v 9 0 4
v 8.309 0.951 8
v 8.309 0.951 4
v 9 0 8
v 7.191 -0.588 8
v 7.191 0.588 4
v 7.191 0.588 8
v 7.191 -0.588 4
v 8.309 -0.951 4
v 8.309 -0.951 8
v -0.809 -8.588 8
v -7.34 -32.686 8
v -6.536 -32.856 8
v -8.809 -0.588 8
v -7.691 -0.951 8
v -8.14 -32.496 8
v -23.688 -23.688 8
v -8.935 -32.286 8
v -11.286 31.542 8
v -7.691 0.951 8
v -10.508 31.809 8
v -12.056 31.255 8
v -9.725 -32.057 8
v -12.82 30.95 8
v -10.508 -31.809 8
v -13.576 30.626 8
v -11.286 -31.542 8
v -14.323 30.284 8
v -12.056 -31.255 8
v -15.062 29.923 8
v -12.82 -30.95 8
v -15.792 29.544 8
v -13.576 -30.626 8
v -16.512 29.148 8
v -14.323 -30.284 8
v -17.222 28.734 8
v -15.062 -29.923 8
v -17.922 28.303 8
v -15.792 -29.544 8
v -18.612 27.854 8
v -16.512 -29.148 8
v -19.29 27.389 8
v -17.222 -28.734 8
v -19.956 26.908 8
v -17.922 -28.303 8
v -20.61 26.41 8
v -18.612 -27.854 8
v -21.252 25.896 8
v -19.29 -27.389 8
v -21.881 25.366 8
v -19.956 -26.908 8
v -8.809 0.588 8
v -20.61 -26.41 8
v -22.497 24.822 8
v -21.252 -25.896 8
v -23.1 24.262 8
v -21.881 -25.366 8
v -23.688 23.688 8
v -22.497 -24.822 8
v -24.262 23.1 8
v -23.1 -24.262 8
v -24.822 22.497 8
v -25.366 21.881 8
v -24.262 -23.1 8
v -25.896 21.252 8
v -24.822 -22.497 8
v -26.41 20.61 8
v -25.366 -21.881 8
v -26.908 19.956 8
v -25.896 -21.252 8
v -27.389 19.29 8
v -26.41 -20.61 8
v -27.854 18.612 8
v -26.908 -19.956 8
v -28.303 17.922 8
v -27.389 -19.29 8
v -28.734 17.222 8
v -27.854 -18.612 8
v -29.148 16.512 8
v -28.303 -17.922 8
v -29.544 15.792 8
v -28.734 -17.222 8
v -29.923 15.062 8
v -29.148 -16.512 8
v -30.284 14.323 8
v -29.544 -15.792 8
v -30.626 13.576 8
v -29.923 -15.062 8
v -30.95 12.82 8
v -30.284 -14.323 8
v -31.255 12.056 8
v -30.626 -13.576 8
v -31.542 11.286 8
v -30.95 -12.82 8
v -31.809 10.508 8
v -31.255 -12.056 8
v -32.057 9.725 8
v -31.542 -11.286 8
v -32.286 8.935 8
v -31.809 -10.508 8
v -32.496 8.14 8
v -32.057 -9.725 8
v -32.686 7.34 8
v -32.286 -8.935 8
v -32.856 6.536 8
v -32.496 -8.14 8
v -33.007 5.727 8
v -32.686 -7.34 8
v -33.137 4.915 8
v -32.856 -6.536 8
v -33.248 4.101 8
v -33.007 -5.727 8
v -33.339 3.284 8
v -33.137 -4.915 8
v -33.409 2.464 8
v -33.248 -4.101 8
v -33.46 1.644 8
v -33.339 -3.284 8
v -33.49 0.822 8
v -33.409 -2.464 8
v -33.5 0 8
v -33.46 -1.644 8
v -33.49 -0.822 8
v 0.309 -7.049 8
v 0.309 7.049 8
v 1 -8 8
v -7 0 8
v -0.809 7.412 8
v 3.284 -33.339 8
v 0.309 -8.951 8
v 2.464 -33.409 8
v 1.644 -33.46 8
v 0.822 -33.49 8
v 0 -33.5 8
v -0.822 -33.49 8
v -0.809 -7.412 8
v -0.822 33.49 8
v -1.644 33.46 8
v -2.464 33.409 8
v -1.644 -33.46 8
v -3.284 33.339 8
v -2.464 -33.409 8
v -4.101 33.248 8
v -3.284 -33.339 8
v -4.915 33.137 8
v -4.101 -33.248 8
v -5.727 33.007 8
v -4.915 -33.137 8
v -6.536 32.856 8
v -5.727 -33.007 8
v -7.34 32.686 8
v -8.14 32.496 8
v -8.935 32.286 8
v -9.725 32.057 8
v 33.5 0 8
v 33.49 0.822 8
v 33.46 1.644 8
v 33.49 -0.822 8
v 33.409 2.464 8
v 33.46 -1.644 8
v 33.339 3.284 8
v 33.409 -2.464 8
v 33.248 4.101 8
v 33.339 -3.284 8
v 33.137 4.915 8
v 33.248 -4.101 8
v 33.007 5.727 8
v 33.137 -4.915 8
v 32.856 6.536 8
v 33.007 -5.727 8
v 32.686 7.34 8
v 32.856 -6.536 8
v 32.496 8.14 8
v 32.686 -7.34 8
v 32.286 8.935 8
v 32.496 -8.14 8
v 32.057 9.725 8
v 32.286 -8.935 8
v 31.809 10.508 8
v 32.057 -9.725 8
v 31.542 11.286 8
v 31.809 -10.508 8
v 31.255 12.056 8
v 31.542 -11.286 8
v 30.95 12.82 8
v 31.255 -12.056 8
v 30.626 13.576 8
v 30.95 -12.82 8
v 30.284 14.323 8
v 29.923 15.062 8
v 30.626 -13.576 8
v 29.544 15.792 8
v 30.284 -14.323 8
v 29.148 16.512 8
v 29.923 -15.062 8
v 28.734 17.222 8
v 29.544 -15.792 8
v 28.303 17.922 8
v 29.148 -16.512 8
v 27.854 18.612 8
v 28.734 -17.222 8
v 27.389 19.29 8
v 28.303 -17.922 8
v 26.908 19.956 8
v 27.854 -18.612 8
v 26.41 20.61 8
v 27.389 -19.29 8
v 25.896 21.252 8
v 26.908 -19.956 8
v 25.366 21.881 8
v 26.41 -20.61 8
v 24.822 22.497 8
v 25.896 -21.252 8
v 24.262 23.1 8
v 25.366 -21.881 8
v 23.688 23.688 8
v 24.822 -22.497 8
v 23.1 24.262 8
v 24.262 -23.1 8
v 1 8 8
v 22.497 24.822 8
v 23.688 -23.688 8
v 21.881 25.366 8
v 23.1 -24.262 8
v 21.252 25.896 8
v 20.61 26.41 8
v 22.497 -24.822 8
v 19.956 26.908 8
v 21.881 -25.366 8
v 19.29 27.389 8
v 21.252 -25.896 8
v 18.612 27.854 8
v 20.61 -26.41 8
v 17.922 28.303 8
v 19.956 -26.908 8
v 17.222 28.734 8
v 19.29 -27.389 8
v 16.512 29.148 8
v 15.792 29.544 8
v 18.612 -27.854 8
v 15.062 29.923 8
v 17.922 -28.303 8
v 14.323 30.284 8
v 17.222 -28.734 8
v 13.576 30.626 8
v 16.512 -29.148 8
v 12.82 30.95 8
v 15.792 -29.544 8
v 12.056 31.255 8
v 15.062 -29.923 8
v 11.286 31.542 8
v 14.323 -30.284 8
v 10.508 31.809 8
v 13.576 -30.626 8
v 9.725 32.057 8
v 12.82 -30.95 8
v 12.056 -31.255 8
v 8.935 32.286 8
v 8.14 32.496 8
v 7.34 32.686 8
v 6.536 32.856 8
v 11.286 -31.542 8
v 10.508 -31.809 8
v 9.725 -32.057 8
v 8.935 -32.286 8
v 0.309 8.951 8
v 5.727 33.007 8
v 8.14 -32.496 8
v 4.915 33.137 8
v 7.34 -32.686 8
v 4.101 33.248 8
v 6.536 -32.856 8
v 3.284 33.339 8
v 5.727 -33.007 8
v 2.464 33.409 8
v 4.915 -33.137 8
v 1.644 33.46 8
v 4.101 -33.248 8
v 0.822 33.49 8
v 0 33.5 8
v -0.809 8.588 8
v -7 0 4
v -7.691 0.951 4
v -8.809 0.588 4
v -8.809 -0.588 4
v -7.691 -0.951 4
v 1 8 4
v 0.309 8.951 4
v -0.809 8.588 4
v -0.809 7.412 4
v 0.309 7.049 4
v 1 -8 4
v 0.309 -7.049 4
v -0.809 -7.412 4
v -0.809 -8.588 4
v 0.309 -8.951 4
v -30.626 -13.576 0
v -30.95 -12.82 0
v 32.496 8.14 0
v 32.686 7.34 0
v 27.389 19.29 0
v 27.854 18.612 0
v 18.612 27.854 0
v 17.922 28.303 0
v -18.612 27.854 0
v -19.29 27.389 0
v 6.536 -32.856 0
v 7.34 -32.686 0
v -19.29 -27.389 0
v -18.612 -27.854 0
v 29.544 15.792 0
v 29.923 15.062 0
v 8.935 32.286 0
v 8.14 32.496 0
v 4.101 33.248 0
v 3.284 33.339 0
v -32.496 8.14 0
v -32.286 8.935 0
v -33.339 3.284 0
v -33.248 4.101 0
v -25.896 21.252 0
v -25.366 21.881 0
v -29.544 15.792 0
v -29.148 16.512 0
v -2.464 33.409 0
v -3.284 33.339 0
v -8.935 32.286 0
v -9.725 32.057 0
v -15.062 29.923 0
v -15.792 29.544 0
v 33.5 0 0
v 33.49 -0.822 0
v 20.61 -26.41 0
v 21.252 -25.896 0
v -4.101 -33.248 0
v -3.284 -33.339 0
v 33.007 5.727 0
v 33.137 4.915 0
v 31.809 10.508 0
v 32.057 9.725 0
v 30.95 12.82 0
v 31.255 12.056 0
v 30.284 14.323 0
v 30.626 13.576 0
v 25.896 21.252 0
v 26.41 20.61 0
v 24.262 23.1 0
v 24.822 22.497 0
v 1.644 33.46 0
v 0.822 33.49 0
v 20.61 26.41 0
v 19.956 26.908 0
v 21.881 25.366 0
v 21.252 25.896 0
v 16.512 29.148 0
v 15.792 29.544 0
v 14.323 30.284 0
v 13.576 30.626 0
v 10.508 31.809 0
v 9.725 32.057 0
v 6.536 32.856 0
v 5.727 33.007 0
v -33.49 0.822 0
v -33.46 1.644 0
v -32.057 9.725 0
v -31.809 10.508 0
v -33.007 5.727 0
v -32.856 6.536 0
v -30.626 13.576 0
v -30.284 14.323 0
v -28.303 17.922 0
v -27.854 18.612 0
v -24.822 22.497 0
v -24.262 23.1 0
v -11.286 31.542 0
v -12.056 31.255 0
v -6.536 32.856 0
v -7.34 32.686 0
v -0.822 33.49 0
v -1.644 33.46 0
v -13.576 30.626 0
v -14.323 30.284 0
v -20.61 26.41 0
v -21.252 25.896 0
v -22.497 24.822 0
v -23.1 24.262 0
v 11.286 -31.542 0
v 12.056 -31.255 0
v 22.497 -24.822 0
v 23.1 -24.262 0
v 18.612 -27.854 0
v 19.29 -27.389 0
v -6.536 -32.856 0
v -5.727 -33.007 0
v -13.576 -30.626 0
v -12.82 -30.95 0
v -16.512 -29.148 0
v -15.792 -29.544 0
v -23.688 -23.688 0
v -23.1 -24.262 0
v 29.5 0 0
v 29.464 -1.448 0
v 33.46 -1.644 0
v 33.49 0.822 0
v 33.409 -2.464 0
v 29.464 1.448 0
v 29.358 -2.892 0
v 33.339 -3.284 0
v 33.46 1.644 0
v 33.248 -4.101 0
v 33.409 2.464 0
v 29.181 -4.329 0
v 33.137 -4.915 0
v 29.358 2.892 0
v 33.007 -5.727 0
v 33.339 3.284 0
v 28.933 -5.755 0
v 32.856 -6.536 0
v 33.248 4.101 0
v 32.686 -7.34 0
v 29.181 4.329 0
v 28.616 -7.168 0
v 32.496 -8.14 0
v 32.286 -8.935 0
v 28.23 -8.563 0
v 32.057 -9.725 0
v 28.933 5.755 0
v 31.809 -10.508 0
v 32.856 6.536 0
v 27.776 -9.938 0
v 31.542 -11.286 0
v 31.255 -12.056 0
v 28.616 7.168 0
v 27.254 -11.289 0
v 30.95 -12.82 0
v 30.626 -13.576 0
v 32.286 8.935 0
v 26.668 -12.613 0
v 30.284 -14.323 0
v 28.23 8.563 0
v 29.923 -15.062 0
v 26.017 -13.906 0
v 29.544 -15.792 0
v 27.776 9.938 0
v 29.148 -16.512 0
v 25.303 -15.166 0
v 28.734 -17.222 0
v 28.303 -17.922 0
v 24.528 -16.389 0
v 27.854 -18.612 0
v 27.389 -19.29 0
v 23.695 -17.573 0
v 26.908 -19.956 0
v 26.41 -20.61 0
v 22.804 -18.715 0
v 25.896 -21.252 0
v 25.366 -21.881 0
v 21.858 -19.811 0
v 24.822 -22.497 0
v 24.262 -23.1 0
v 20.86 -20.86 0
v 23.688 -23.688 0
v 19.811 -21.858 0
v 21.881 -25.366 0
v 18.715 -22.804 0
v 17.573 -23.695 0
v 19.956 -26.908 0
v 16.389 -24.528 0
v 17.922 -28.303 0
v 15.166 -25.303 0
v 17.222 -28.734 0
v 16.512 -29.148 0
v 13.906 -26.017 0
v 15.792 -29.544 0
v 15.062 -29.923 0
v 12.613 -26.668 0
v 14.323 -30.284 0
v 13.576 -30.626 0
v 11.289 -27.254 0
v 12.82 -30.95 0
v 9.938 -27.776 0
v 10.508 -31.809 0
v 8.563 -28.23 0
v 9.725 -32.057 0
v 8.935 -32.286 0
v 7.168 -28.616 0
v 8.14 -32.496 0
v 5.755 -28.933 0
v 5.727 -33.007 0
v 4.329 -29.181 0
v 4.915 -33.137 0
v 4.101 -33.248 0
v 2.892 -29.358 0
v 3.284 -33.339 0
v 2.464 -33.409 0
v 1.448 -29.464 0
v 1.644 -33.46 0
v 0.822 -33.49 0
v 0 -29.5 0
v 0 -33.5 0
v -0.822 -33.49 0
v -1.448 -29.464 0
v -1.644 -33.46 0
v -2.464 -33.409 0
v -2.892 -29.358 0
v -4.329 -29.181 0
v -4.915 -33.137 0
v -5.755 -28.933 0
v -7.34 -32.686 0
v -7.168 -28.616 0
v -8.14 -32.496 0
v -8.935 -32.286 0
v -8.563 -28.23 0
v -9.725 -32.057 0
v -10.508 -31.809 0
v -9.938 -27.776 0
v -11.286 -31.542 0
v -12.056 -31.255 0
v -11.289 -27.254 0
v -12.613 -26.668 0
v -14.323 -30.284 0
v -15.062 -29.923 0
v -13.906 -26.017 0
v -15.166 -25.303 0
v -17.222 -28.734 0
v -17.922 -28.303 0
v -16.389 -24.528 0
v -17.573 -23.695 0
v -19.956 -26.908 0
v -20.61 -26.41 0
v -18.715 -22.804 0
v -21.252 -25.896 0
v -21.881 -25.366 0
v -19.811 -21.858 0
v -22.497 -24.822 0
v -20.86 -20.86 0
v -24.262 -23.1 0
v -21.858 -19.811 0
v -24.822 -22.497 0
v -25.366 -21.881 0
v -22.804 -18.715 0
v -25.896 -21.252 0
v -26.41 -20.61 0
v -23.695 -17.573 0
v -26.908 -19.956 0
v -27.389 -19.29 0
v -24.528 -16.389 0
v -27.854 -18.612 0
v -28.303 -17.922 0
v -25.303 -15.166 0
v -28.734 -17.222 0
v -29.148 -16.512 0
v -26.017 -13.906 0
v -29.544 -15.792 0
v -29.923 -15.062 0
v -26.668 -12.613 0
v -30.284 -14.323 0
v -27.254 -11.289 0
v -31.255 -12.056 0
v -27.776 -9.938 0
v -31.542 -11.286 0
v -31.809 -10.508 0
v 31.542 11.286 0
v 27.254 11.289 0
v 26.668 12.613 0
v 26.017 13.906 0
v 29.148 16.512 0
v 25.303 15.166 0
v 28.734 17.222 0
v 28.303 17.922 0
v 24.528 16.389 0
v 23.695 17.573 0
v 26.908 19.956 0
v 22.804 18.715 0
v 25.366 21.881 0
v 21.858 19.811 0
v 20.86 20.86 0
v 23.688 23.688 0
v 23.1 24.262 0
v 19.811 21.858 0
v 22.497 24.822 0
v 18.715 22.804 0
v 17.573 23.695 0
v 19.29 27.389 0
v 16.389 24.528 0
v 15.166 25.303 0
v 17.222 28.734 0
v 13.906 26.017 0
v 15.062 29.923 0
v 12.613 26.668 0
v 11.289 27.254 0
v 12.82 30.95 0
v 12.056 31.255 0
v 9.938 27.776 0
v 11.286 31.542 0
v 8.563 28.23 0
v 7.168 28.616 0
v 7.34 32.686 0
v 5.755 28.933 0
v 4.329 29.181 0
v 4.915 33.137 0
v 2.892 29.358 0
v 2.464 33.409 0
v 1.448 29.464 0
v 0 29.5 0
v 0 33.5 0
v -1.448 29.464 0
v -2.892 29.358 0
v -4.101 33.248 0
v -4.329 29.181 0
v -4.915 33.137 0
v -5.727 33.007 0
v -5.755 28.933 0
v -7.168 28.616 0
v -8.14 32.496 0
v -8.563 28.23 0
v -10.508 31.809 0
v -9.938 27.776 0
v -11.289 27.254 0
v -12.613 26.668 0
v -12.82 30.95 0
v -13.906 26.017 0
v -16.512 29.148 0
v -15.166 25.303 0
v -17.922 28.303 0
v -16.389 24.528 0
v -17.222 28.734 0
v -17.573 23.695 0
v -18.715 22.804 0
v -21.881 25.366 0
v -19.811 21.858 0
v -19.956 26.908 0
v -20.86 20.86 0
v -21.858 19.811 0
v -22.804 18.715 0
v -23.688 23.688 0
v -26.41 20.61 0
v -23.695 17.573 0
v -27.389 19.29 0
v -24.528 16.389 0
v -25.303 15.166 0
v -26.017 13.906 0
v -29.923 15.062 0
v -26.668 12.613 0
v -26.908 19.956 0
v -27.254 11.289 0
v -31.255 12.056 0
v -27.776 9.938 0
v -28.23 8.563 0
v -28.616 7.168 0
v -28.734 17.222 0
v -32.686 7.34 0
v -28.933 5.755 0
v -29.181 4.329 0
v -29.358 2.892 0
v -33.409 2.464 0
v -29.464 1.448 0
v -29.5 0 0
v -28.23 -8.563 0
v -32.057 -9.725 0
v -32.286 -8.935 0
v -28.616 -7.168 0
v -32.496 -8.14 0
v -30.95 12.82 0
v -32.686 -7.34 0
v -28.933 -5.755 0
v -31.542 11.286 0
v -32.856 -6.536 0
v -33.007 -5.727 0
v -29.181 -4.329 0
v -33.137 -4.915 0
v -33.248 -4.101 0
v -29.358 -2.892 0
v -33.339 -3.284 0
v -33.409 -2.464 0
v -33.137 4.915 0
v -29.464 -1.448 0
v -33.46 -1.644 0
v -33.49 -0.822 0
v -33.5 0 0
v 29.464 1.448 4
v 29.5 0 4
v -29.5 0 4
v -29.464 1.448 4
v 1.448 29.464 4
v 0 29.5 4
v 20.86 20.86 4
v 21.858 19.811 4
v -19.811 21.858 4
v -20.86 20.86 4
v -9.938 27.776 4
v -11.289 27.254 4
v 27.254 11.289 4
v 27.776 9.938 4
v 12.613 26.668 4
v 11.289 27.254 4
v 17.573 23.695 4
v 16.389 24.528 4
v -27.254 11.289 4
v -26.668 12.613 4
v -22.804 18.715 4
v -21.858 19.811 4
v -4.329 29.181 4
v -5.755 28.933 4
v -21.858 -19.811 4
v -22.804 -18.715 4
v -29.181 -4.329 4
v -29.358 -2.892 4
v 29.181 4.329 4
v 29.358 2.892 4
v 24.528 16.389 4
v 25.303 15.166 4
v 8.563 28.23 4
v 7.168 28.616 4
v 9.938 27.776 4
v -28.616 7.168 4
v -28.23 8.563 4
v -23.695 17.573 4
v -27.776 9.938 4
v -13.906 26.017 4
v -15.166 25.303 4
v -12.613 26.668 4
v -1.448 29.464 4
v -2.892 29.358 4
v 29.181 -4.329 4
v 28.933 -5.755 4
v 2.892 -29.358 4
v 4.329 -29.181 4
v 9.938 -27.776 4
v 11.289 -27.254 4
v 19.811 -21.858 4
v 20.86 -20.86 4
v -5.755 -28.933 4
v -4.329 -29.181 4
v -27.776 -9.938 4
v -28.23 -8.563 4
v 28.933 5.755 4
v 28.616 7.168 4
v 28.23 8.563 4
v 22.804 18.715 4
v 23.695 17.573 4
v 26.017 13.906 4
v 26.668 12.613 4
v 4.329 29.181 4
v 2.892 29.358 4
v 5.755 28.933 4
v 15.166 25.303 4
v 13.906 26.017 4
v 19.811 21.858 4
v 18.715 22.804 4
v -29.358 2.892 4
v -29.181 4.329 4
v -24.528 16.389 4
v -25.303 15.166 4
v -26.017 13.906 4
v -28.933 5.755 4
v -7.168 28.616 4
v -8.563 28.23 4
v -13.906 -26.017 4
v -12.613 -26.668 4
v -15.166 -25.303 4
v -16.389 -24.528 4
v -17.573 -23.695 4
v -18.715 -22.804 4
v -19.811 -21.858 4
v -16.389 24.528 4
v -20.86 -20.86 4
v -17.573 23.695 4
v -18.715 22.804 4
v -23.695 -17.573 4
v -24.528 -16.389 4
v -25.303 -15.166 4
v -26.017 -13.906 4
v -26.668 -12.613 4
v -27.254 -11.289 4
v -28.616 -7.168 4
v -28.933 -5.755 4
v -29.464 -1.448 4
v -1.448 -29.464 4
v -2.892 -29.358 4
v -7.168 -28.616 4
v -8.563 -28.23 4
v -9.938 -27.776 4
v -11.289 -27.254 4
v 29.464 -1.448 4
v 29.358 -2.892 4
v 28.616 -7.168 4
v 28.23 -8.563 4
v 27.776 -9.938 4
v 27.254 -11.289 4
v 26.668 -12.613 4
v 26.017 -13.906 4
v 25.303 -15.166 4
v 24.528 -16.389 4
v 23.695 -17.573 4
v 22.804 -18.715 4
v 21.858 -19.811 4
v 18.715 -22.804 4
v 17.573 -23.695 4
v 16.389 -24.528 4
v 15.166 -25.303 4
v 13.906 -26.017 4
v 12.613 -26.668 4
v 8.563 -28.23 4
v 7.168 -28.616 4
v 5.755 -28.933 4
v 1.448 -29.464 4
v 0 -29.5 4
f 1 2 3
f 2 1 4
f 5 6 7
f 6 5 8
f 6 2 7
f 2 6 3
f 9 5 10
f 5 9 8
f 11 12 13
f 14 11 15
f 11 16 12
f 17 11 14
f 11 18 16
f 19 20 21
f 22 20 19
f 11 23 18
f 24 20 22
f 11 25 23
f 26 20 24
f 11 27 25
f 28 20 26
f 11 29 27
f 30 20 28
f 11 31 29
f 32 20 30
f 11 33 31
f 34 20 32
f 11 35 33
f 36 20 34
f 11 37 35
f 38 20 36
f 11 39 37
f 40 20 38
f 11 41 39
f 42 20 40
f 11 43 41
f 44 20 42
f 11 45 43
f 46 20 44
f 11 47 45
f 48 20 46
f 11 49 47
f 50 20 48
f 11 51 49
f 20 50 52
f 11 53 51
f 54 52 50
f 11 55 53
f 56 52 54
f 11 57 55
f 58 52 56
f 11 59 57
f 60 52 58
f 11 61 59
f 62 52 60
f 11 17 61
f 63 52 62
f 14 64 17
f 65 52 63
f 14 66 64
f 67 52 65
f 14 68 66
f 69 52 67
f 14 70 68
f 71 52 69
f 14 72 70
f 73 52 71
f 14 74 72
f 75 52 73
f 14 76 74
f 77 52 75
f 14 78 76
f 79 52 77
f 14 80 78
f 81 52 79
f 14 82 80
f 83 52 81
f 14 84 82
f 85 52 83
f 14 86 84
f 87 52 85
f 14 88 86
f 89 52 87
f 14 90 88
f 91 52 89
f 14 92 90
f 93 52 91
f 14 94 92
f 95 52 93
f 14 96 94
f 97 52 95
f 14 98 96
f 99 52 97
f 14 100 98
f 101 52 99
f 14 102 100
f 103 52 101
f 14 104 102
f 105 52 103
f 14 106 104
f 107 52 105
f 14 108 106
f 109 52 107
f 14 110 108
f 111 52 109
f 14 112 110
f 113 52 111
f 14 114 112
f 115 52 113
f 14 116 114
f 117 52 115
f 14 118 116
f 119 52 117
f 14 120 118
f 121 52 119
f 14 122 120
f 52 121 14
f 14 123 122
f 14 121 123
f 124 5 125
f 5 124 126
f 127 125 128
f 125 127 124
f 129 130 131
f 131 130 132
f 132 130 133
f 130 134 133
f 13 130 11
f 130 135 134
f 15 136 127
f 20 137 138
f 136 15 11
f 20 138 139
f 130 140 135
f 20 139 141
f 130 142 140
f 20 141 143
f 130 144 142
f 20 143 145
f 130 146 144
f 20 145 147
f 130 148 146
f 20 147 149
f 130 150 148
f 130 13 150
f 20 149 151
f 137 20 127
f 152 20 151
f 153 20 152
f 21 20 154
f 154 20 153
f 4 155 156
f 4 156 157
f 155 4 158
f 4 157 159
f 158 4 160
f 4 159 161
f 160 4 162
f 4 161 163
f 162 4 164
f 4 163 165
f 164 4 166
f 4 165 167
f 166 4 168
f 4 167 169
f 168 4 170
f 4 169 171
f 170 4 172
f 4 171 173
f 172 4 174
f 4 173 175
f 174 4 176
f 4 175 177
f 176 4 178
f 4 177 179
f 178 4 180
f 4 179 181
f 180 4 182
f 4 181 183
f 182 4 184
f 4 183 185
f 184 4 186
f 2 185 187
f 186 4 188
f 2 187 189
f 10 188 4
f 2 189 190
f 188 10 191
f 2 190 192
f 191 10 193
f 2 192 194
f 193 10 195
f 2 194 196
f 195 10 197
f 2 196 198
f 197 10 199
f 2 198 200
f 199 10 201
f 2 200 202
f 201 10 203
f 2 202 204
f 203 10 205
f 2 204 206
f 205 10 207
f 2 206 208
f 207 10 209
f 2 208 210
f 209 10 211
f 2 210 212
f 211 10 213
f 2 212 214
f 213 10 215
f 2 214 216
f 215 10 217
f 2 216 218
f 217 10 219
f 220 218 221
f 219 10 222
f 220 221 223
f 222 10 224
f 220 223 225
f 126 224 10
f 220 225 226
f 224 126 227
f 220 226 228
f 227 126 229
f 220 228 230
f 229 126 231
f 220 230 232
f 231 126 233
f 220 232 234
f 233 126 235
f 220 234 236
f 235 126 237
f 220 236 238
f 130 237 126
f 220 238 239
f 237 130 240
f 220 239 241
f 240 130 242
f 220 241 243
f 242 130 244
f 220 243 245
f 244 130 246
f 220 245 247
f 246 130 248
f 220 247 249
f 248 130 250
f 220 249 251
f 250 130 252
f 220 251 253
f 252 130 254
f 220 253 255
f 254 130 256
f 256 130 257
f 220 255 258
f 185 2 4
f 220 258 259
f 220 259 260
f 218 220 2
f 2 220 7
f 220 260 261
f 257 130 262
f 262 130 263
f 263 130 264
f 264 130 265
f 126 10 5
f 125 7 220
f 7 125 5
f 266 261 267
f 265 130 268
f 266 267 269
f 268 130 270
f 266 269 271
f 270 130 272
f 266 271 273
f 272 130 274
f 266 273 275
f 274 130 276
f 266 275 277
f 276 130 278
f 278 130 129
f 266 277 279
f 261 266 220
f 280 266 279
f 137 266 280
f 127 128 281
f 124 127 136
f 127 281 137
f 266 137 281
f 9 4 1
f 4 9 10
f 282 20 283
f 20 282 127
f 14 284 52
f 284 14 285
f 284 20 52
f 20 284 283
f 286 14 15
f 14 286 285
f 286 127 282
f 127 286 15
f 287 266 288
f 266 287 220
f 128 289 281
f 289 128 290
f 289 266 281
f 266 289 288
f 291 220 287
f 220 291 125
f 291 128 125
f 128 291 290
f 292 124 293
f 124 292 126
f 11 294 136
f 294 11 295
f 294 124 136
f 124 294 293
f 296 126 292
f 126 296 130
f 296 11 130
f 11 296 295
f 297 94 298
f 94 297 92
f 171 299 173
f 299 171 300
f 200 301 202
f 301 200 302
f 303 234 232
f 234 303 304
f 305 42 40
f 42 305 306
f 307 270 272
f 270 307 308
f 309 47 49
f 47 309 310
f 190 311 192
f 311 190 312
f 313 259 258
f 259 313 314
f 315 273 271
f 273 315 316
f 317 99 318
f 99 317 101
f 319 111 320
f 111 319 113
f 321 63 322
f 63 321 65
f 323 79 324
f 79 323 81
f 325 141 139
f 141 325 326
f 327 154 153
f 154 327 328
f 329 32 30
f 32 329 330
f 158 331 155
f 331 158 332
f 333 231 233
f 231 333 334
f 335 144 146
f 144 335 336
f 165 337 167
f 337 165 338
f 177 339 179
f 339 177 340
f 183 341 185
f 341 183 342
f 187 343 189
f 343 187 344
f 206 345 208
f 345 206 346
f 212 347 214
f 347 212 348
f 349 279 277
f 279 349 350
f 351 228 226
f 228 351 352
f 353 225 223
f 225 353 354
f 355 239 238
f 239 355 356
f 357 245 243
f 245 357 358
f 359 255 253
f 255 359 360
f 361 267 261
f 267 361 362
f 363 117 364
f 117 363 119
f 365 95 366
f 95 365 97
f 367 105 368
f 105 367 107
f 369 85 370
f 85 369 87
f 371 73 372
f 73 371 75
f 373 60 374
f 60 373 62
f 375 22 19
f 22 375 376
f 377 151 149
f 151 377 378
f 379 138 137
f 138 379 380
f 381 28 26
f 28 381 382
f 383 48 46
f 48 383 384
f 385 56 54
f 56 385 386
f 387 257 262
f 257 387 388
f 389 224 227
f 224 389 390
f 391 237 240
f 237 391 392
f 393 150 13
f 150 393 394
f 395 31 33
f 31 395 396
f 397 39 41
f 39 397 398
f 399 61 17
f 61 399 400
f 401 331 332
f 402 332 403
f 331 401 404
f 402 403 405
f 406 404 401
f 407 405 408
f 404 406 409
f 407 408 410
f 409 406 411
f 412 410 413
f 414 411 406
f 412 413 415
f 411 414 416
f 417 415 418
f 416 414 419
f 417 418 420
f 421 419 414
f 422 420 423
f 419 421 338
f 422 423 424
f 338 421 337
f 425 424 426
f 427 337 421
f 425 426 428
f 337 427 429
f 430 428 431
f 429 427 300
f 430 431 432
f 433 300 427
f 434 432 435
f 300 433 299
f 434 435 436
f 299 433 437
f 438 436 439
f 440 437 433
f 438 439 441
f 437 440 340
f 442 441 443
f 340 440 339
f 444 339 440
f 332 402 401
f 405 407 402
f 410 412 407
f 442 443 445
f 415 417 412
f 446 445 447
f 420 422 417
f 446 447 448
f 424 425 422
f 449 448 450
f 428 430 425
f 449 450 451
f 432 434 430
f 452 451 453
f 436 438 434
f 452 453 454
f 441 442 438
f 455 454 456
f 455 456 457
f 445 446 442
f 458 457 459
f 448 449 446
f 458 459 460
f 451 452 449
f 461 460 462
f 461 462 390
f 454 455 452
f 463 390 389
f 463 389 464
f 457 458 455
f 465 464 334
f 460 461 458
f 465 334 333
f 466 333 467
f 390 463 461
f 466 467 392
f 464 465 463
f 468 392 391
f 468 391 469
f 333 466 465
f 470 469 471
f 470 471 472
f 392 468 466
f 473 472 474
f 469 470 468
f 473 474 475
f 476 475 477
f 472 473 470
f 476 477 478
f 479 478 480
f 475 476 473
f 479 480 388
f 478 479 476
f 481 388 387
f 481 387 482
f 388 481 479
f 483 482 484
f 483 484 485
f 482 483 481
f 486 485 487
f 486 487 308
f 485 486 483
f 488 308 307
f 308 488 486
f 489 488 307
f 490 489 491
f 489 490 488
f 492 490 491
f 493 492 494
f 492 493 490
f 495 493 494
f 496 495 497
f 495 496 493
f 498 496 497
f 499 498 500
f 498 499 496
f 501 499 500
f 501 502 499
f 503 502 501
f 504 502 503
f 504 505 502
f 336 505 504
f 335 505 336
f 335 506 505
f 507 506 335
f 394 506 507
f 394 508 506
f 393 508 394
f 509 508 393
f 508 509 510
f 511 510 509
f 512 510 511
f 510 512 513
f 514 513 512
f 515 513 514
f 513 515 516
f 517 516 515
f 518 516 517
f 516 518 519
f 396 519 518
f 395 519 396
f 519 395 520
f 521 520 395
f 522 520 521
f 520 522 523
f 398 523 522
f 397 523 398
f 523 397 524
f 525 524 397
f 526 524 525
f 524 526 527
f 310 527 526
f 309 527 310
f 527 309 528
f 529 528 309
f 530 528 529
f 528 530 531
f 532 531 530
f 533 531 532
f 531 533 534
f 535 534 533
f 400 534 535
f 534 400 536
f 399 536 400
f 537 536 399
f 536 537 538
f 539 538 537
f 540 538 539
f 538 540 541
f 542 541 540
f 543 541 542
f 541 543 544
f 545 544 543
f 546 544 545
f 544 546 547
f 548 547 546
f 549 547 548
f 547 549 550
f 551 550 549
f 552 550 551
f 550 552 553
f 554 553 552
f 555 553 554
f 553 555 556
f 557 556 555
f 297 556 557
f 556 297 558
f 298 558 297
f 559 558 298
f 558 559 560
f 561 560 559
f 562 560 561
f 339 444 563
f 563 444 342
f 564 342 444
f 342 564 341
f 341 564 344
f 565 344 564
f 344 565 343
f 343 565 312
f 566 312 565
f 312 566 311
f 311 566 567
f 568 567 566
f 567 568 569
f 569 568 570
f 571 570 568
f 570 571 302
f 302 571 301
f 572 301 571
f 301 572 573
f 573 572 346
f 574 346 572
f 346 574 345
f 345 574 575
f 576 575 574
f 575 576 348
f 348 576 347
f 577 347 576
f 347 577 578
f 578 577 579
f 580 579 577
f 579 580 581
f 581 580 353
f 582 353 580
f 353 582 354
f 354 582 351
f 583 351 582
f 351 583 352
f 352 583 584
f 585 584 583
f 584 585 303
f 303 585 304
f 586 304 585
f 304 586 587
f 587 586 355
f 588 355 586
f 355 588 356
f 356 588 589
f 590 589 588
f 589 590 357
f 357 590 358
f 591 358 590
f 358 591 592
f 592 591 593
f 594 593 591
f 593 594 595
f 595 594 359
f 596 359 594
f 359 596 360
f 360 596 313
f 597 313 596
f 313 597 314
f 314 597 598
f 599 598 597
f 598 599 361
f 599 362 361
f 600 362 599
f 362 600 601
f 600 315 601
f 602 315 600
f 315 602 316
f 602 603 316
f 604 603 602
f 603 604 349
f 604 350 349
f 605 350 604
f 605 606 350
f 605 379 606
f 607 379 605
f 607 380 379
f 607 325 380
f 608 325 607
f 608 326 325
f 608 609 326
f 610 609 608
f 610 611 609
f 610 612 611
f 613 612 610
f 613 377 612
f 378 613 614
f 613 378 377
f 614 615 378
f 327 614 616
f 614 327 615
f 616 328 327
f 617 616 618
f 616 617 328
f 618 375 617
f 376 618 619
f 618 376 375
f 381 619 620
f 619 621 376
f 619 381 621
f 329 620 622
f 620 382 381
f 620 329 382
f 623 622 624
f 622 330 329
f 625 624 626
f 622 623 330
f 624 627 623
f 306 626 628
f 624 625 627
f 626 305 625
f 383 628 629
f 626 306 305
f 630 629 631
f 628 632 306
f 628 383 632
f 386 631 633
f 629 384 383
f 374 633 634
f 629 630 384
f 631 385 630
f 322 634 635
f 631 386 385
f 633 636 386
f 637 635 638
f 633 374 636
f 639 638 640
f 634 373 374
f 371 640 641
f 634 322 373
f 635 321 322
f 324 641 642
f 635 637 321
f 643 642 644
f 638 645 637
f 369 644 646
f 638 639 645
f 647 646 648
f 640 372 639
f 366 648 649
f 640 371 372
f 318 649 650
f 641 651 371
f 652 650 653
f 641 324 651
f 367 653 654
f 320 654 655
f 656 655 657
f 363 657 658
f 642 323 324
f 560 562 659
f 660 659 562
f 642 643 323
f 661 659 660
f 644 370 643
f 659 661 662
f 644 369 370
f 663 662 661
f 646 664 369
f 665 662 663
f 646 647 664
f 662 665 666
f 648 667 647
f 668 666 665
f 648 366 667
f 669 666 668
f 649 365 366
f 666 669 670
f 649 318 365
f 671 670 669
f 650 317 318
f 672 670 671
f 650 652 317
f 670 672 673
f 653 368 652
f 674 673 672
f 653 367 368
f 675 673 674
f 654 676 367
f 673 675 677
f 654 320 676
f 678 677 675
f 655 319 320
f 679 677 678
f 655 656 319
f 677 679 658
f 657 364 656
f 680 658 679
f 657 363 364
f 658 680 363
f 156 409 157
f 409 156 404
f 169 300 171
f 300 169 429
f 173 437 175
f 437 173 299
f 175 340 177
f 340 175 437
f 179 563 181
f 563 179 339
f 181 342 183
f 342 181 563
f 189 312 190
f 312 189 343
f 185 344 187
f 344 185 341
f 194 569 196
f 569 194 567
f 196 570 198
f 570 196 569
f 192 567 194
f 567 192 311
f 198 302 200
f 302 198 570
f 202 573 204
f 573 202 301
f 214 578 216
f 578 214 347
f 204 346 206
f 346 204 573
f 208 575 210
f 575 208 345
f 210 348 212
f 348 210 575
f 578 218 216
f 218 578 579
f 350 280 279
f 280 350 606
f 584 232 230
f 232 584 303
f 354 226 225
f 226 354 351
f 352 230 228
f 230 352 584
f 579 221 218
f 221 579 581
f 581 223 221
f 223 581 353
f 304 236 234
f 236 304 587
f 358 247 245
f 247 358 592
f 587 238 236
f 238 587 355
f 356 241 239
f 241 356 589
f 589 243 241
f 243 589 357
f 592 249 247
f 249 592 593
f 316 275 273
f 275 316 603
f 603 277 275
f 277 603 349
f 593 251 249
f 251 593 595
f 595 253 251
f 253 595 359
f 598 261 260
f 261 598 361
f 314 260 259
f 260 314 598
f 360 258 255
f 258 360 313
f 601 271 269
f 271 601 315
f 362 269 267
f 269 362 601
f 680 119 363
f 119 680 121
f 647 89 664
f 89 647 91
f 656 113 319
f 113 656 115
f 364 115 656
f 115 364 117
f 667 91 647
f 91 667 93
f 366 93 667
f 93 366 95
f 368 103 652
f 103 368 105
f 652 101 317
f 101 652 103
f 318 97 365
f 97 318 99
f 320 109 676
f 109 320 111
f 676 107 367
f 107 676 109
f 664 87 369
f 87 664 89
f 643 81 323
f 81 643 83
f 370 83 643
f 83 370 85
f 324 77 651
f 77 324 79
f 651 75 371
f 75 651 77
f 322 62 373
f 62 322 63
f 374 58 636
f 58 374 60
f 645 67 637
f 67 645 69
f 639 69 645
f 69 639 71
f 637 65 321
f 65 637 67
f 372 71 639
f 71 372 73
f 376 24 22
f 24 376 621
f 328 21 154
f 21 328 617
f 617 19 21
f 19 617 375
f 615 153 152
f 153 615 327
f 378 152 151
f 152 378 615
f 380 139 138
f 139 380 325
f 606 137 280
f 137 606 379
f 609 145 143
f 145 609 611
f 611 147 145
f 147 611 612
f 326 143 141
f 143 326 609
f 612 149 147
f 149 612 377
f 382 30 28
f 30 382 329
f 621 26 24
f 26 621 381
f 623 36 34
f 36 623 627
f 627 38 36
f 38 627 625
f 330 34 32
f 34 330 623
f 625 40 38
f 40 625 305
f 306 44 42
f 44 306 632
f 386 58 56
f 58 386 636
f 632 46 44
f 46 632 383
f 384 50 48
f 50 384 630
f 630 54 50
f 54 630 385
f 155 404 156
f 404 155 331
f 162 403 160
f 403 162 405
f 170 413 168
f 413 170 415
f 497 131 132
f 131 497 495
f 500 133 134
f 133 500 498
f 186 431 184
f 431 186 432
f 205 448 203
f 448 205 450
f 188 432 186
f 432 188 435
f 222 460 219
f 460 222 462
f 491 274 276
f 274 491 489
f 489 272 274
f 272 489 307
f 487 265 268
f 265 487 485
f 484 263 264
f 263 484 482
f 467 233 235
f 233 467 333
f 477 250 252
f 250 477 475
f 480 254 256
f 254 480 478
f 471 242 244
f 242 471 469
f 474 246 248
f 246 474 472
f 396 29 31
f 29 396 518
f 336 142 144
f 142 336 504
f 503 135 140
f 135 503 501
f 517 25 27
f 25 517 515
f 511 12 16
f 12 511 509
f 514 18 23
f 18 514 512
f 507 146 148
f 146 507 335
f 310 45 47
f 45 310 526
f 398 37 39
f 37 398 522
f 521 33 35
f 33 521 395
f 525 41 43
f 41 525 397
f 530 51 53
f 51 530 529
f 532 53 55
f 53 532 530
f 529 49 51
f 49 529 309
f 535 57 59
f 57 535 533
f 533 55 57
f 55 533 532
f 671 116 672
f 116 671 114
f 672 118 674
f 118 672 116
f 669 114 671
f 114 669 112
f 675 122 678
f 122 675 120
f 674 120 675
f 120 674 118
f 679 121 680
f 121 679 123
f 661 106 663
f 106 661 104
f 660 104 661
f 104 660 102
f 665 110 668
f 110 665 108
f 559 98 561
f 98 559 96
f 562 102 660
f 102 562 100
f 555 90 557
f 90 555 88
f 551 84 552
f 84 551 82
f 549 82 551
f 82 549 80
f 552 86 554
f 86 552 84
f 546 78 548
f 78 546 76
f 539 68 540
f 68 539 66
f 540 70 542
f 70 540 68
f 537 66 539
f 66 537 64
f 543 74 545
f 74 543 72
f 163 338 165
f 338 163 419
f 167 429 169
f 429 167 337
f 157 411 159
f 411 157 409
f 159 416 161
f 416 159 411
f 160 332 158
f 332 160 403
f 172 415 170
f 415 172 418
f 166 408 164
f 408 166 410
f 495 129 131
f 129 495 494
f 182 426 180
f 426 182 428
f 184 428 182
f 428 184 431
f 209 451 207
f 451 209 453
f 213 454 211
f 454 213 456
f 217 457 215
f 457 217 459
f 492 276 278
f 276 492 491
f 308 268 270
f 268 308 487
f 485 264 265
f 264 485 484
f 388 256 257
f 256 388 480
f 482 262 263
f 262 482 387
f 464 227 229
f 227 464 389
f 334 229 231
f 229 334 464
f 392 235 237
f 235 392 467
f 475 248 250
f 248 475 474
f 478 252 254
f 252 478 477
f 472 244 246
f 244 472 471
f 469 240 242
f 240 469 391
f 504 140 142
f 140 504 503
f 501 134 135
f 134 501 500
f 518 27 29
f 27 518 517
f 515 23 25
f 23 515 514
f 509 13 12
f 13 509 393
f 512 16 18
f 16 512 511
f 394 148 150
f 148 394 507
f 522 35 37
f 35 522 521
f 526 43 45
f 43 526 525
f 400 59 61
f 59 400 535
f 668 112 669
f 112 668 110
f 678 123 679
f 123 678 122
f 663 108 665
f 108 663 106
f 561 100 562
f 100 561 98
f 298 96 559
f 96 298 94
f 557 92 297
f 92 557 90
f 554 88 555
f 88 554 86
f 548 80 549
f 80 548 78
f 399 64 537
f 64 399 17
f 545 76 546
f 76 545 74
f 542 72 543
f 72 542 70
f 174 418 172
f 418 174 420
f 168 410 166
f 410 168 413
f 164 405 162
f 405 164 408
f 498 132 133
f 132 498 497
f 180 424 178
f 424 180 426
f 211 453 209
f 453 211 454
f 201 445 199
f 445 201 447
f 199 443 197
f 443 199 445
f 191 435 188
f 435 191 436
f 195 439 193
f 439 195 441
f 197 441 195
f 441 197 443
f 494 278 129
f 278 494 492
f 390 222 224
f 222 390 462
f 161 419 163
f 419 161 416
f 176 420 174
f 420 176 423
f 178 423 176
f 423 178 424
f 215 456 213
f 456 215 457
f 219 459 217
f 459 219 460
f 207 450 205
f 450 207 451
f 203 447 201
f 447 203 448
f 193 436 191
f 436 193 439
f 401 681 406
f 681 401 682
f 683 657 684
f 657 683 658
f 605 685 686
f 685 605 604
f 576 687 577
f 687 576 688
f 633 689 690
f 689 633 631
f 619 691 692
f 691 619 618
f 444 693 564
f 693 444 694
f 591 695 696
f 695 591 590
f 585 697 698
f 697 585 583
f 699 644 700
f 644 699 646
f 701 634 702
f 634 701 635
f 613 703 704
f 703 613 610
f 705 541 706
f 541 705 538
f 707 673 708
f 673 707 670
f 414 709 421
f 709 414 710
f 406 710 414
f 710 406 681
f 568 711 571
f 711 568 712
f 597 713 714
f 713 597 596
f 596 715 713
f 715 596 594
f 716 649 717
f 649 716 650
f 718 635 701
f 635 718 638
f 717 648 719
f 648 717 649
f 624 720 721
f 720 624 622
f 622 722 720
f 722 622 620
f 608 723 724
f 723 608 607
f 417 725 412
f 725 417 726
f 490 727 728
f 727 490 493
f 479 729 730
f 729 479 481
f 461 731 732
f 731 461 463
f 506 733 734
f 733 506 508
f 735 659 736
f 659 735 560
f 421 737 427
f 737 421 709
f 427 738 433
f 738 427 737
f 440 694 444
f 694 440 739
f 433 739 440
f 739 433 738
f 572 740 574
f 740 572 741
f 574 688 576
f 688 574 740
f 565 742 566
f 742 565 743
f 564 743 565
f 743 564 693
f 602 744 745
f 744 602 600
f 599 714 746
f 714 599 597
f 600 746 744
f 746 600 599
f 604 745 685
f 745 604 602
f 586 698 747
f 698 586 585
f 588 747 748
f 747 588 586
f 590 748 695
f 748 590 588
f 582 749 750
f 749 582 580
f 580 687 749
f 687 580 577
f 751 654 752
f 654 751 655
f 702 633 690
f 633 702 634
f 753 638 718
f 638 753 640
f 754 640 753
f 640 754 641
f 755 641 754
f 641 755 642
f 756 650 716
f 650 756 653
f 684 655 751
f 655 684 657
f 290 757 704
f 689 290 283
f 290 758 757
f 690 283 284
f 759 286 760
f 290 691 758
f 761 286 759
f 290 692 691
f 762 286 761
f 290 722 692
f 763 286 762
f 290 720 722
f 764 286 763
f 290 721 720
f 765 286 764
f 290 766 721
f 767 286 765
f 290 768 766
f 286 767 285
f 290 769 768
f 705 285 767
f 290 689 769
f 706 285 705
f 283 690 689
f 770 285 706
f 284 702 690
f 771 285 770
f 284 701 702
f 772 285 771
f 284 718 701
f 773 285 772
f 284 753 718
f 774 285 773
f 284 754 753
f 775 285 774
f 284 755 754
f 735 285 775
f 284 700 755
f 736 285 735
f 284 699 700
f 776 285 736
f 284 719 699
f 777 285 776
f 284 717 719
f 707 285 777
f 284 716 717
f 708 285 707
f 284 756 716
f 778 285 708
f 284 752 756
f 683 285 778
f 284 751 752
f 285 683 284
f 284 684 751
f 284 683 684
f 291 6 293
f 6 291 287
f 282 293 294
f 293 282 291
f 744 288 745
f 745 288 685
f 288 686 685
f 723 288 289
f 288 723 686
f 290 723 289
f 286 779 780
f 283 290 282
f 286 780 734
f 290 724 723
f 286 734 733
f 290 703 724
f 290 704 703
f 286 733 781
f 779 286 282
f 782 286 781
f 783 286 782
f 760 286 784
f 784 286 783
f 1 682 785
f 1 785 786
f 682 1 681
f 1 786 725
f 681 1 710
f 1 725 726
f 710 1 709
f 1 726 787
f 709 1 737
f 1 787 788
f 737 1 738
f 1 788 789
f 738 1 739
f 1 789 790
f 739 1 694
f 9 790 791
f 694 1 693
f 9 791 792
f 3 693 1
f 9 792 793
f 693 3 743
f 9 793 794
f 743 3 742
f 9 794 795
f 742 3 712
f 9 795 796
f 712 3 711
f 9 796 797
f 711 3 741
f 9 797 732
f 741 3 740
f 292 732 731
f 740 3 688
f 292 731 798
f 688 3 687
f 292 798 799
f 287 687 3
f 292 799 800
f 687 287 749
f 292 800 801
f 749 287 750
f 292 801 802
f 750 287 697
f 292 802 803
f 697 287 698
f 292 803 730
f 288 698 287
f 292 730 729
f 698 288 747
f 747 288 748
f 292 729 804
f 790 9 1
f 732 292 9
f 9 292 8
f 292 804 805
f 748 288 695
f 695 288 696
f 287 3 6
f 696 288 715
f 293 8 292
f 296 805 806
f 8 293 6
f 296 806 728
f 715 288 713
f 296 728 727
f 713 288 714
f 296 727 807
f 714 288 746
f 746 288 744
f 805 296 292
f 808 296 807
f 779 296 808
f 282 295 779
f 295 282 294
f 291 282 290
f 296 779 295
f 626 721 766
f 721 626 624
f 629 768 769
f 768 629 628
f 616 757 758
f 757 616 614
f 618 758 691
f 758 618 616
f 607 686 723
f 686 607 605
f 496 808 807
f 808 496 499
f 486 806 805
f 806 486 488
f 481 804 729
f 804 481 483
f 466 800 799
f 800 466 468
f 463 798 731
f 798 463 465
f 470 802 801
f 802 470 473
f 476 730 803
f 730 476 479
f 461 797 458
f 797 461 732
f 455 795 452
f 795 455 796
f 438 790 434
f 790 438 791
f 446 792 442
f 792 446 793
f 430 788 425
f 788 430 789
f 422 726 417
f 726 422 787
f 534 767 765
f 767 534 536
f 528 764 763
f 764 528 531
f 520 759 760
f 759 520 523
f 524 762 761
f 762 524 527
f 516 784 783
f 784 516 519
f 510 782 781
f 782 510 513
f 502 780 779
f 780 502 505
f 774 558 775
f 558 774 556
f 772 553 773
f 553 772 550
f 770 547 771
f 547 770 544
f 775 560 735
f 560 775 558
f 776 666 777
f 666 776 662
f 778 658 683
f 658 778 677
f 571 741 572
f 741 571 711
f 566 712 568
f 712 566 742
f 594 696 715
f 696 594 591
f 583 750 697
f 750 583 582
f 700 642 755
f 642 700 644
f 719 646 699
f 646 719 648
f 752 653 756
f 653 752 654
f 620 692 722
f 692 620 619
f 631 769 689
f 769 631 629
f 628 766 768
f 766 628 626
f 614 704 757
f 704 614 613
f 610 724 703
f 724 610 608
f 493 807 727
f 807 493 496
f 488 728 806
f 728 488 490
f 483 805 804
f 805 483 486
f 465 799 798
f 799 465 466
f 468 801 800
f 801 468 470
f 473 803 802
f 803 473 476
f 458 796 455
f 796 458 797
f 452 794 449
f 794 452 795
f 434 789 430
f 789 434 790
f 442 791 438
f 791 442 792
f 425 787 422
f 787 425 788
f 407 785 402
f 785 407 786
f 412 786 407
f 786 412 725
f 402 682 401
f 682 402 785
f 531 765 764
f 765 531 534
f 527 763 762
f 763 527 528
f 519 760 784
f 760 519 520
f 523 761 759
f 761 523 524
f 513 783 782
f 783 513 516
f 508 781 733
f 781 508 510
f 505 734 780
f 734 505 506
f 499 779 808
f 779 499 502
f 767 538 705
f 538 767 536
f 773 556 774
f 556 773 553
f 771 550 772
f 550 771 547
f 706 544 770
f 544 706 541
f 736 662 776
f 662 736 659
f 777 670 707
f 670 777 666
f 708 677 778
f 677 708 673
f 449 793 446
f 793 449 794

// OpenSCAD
difference(){
    difference(){
        cylinder(8, 33.5, 33.5, $fn = 256);
        cylinder(4, 29.5, 29.5, $fn = 128);
    }
    
    union(){
        translate([8,0,0])cylinder(8, 1, 1);
        translate([-8,0,0])cylinder(8, 1, 1);
        translate([0,8,0])cylinder(8, 1, 1);
        translate([0,-8,0])cylinder(8, 1, 1);
    }
}
